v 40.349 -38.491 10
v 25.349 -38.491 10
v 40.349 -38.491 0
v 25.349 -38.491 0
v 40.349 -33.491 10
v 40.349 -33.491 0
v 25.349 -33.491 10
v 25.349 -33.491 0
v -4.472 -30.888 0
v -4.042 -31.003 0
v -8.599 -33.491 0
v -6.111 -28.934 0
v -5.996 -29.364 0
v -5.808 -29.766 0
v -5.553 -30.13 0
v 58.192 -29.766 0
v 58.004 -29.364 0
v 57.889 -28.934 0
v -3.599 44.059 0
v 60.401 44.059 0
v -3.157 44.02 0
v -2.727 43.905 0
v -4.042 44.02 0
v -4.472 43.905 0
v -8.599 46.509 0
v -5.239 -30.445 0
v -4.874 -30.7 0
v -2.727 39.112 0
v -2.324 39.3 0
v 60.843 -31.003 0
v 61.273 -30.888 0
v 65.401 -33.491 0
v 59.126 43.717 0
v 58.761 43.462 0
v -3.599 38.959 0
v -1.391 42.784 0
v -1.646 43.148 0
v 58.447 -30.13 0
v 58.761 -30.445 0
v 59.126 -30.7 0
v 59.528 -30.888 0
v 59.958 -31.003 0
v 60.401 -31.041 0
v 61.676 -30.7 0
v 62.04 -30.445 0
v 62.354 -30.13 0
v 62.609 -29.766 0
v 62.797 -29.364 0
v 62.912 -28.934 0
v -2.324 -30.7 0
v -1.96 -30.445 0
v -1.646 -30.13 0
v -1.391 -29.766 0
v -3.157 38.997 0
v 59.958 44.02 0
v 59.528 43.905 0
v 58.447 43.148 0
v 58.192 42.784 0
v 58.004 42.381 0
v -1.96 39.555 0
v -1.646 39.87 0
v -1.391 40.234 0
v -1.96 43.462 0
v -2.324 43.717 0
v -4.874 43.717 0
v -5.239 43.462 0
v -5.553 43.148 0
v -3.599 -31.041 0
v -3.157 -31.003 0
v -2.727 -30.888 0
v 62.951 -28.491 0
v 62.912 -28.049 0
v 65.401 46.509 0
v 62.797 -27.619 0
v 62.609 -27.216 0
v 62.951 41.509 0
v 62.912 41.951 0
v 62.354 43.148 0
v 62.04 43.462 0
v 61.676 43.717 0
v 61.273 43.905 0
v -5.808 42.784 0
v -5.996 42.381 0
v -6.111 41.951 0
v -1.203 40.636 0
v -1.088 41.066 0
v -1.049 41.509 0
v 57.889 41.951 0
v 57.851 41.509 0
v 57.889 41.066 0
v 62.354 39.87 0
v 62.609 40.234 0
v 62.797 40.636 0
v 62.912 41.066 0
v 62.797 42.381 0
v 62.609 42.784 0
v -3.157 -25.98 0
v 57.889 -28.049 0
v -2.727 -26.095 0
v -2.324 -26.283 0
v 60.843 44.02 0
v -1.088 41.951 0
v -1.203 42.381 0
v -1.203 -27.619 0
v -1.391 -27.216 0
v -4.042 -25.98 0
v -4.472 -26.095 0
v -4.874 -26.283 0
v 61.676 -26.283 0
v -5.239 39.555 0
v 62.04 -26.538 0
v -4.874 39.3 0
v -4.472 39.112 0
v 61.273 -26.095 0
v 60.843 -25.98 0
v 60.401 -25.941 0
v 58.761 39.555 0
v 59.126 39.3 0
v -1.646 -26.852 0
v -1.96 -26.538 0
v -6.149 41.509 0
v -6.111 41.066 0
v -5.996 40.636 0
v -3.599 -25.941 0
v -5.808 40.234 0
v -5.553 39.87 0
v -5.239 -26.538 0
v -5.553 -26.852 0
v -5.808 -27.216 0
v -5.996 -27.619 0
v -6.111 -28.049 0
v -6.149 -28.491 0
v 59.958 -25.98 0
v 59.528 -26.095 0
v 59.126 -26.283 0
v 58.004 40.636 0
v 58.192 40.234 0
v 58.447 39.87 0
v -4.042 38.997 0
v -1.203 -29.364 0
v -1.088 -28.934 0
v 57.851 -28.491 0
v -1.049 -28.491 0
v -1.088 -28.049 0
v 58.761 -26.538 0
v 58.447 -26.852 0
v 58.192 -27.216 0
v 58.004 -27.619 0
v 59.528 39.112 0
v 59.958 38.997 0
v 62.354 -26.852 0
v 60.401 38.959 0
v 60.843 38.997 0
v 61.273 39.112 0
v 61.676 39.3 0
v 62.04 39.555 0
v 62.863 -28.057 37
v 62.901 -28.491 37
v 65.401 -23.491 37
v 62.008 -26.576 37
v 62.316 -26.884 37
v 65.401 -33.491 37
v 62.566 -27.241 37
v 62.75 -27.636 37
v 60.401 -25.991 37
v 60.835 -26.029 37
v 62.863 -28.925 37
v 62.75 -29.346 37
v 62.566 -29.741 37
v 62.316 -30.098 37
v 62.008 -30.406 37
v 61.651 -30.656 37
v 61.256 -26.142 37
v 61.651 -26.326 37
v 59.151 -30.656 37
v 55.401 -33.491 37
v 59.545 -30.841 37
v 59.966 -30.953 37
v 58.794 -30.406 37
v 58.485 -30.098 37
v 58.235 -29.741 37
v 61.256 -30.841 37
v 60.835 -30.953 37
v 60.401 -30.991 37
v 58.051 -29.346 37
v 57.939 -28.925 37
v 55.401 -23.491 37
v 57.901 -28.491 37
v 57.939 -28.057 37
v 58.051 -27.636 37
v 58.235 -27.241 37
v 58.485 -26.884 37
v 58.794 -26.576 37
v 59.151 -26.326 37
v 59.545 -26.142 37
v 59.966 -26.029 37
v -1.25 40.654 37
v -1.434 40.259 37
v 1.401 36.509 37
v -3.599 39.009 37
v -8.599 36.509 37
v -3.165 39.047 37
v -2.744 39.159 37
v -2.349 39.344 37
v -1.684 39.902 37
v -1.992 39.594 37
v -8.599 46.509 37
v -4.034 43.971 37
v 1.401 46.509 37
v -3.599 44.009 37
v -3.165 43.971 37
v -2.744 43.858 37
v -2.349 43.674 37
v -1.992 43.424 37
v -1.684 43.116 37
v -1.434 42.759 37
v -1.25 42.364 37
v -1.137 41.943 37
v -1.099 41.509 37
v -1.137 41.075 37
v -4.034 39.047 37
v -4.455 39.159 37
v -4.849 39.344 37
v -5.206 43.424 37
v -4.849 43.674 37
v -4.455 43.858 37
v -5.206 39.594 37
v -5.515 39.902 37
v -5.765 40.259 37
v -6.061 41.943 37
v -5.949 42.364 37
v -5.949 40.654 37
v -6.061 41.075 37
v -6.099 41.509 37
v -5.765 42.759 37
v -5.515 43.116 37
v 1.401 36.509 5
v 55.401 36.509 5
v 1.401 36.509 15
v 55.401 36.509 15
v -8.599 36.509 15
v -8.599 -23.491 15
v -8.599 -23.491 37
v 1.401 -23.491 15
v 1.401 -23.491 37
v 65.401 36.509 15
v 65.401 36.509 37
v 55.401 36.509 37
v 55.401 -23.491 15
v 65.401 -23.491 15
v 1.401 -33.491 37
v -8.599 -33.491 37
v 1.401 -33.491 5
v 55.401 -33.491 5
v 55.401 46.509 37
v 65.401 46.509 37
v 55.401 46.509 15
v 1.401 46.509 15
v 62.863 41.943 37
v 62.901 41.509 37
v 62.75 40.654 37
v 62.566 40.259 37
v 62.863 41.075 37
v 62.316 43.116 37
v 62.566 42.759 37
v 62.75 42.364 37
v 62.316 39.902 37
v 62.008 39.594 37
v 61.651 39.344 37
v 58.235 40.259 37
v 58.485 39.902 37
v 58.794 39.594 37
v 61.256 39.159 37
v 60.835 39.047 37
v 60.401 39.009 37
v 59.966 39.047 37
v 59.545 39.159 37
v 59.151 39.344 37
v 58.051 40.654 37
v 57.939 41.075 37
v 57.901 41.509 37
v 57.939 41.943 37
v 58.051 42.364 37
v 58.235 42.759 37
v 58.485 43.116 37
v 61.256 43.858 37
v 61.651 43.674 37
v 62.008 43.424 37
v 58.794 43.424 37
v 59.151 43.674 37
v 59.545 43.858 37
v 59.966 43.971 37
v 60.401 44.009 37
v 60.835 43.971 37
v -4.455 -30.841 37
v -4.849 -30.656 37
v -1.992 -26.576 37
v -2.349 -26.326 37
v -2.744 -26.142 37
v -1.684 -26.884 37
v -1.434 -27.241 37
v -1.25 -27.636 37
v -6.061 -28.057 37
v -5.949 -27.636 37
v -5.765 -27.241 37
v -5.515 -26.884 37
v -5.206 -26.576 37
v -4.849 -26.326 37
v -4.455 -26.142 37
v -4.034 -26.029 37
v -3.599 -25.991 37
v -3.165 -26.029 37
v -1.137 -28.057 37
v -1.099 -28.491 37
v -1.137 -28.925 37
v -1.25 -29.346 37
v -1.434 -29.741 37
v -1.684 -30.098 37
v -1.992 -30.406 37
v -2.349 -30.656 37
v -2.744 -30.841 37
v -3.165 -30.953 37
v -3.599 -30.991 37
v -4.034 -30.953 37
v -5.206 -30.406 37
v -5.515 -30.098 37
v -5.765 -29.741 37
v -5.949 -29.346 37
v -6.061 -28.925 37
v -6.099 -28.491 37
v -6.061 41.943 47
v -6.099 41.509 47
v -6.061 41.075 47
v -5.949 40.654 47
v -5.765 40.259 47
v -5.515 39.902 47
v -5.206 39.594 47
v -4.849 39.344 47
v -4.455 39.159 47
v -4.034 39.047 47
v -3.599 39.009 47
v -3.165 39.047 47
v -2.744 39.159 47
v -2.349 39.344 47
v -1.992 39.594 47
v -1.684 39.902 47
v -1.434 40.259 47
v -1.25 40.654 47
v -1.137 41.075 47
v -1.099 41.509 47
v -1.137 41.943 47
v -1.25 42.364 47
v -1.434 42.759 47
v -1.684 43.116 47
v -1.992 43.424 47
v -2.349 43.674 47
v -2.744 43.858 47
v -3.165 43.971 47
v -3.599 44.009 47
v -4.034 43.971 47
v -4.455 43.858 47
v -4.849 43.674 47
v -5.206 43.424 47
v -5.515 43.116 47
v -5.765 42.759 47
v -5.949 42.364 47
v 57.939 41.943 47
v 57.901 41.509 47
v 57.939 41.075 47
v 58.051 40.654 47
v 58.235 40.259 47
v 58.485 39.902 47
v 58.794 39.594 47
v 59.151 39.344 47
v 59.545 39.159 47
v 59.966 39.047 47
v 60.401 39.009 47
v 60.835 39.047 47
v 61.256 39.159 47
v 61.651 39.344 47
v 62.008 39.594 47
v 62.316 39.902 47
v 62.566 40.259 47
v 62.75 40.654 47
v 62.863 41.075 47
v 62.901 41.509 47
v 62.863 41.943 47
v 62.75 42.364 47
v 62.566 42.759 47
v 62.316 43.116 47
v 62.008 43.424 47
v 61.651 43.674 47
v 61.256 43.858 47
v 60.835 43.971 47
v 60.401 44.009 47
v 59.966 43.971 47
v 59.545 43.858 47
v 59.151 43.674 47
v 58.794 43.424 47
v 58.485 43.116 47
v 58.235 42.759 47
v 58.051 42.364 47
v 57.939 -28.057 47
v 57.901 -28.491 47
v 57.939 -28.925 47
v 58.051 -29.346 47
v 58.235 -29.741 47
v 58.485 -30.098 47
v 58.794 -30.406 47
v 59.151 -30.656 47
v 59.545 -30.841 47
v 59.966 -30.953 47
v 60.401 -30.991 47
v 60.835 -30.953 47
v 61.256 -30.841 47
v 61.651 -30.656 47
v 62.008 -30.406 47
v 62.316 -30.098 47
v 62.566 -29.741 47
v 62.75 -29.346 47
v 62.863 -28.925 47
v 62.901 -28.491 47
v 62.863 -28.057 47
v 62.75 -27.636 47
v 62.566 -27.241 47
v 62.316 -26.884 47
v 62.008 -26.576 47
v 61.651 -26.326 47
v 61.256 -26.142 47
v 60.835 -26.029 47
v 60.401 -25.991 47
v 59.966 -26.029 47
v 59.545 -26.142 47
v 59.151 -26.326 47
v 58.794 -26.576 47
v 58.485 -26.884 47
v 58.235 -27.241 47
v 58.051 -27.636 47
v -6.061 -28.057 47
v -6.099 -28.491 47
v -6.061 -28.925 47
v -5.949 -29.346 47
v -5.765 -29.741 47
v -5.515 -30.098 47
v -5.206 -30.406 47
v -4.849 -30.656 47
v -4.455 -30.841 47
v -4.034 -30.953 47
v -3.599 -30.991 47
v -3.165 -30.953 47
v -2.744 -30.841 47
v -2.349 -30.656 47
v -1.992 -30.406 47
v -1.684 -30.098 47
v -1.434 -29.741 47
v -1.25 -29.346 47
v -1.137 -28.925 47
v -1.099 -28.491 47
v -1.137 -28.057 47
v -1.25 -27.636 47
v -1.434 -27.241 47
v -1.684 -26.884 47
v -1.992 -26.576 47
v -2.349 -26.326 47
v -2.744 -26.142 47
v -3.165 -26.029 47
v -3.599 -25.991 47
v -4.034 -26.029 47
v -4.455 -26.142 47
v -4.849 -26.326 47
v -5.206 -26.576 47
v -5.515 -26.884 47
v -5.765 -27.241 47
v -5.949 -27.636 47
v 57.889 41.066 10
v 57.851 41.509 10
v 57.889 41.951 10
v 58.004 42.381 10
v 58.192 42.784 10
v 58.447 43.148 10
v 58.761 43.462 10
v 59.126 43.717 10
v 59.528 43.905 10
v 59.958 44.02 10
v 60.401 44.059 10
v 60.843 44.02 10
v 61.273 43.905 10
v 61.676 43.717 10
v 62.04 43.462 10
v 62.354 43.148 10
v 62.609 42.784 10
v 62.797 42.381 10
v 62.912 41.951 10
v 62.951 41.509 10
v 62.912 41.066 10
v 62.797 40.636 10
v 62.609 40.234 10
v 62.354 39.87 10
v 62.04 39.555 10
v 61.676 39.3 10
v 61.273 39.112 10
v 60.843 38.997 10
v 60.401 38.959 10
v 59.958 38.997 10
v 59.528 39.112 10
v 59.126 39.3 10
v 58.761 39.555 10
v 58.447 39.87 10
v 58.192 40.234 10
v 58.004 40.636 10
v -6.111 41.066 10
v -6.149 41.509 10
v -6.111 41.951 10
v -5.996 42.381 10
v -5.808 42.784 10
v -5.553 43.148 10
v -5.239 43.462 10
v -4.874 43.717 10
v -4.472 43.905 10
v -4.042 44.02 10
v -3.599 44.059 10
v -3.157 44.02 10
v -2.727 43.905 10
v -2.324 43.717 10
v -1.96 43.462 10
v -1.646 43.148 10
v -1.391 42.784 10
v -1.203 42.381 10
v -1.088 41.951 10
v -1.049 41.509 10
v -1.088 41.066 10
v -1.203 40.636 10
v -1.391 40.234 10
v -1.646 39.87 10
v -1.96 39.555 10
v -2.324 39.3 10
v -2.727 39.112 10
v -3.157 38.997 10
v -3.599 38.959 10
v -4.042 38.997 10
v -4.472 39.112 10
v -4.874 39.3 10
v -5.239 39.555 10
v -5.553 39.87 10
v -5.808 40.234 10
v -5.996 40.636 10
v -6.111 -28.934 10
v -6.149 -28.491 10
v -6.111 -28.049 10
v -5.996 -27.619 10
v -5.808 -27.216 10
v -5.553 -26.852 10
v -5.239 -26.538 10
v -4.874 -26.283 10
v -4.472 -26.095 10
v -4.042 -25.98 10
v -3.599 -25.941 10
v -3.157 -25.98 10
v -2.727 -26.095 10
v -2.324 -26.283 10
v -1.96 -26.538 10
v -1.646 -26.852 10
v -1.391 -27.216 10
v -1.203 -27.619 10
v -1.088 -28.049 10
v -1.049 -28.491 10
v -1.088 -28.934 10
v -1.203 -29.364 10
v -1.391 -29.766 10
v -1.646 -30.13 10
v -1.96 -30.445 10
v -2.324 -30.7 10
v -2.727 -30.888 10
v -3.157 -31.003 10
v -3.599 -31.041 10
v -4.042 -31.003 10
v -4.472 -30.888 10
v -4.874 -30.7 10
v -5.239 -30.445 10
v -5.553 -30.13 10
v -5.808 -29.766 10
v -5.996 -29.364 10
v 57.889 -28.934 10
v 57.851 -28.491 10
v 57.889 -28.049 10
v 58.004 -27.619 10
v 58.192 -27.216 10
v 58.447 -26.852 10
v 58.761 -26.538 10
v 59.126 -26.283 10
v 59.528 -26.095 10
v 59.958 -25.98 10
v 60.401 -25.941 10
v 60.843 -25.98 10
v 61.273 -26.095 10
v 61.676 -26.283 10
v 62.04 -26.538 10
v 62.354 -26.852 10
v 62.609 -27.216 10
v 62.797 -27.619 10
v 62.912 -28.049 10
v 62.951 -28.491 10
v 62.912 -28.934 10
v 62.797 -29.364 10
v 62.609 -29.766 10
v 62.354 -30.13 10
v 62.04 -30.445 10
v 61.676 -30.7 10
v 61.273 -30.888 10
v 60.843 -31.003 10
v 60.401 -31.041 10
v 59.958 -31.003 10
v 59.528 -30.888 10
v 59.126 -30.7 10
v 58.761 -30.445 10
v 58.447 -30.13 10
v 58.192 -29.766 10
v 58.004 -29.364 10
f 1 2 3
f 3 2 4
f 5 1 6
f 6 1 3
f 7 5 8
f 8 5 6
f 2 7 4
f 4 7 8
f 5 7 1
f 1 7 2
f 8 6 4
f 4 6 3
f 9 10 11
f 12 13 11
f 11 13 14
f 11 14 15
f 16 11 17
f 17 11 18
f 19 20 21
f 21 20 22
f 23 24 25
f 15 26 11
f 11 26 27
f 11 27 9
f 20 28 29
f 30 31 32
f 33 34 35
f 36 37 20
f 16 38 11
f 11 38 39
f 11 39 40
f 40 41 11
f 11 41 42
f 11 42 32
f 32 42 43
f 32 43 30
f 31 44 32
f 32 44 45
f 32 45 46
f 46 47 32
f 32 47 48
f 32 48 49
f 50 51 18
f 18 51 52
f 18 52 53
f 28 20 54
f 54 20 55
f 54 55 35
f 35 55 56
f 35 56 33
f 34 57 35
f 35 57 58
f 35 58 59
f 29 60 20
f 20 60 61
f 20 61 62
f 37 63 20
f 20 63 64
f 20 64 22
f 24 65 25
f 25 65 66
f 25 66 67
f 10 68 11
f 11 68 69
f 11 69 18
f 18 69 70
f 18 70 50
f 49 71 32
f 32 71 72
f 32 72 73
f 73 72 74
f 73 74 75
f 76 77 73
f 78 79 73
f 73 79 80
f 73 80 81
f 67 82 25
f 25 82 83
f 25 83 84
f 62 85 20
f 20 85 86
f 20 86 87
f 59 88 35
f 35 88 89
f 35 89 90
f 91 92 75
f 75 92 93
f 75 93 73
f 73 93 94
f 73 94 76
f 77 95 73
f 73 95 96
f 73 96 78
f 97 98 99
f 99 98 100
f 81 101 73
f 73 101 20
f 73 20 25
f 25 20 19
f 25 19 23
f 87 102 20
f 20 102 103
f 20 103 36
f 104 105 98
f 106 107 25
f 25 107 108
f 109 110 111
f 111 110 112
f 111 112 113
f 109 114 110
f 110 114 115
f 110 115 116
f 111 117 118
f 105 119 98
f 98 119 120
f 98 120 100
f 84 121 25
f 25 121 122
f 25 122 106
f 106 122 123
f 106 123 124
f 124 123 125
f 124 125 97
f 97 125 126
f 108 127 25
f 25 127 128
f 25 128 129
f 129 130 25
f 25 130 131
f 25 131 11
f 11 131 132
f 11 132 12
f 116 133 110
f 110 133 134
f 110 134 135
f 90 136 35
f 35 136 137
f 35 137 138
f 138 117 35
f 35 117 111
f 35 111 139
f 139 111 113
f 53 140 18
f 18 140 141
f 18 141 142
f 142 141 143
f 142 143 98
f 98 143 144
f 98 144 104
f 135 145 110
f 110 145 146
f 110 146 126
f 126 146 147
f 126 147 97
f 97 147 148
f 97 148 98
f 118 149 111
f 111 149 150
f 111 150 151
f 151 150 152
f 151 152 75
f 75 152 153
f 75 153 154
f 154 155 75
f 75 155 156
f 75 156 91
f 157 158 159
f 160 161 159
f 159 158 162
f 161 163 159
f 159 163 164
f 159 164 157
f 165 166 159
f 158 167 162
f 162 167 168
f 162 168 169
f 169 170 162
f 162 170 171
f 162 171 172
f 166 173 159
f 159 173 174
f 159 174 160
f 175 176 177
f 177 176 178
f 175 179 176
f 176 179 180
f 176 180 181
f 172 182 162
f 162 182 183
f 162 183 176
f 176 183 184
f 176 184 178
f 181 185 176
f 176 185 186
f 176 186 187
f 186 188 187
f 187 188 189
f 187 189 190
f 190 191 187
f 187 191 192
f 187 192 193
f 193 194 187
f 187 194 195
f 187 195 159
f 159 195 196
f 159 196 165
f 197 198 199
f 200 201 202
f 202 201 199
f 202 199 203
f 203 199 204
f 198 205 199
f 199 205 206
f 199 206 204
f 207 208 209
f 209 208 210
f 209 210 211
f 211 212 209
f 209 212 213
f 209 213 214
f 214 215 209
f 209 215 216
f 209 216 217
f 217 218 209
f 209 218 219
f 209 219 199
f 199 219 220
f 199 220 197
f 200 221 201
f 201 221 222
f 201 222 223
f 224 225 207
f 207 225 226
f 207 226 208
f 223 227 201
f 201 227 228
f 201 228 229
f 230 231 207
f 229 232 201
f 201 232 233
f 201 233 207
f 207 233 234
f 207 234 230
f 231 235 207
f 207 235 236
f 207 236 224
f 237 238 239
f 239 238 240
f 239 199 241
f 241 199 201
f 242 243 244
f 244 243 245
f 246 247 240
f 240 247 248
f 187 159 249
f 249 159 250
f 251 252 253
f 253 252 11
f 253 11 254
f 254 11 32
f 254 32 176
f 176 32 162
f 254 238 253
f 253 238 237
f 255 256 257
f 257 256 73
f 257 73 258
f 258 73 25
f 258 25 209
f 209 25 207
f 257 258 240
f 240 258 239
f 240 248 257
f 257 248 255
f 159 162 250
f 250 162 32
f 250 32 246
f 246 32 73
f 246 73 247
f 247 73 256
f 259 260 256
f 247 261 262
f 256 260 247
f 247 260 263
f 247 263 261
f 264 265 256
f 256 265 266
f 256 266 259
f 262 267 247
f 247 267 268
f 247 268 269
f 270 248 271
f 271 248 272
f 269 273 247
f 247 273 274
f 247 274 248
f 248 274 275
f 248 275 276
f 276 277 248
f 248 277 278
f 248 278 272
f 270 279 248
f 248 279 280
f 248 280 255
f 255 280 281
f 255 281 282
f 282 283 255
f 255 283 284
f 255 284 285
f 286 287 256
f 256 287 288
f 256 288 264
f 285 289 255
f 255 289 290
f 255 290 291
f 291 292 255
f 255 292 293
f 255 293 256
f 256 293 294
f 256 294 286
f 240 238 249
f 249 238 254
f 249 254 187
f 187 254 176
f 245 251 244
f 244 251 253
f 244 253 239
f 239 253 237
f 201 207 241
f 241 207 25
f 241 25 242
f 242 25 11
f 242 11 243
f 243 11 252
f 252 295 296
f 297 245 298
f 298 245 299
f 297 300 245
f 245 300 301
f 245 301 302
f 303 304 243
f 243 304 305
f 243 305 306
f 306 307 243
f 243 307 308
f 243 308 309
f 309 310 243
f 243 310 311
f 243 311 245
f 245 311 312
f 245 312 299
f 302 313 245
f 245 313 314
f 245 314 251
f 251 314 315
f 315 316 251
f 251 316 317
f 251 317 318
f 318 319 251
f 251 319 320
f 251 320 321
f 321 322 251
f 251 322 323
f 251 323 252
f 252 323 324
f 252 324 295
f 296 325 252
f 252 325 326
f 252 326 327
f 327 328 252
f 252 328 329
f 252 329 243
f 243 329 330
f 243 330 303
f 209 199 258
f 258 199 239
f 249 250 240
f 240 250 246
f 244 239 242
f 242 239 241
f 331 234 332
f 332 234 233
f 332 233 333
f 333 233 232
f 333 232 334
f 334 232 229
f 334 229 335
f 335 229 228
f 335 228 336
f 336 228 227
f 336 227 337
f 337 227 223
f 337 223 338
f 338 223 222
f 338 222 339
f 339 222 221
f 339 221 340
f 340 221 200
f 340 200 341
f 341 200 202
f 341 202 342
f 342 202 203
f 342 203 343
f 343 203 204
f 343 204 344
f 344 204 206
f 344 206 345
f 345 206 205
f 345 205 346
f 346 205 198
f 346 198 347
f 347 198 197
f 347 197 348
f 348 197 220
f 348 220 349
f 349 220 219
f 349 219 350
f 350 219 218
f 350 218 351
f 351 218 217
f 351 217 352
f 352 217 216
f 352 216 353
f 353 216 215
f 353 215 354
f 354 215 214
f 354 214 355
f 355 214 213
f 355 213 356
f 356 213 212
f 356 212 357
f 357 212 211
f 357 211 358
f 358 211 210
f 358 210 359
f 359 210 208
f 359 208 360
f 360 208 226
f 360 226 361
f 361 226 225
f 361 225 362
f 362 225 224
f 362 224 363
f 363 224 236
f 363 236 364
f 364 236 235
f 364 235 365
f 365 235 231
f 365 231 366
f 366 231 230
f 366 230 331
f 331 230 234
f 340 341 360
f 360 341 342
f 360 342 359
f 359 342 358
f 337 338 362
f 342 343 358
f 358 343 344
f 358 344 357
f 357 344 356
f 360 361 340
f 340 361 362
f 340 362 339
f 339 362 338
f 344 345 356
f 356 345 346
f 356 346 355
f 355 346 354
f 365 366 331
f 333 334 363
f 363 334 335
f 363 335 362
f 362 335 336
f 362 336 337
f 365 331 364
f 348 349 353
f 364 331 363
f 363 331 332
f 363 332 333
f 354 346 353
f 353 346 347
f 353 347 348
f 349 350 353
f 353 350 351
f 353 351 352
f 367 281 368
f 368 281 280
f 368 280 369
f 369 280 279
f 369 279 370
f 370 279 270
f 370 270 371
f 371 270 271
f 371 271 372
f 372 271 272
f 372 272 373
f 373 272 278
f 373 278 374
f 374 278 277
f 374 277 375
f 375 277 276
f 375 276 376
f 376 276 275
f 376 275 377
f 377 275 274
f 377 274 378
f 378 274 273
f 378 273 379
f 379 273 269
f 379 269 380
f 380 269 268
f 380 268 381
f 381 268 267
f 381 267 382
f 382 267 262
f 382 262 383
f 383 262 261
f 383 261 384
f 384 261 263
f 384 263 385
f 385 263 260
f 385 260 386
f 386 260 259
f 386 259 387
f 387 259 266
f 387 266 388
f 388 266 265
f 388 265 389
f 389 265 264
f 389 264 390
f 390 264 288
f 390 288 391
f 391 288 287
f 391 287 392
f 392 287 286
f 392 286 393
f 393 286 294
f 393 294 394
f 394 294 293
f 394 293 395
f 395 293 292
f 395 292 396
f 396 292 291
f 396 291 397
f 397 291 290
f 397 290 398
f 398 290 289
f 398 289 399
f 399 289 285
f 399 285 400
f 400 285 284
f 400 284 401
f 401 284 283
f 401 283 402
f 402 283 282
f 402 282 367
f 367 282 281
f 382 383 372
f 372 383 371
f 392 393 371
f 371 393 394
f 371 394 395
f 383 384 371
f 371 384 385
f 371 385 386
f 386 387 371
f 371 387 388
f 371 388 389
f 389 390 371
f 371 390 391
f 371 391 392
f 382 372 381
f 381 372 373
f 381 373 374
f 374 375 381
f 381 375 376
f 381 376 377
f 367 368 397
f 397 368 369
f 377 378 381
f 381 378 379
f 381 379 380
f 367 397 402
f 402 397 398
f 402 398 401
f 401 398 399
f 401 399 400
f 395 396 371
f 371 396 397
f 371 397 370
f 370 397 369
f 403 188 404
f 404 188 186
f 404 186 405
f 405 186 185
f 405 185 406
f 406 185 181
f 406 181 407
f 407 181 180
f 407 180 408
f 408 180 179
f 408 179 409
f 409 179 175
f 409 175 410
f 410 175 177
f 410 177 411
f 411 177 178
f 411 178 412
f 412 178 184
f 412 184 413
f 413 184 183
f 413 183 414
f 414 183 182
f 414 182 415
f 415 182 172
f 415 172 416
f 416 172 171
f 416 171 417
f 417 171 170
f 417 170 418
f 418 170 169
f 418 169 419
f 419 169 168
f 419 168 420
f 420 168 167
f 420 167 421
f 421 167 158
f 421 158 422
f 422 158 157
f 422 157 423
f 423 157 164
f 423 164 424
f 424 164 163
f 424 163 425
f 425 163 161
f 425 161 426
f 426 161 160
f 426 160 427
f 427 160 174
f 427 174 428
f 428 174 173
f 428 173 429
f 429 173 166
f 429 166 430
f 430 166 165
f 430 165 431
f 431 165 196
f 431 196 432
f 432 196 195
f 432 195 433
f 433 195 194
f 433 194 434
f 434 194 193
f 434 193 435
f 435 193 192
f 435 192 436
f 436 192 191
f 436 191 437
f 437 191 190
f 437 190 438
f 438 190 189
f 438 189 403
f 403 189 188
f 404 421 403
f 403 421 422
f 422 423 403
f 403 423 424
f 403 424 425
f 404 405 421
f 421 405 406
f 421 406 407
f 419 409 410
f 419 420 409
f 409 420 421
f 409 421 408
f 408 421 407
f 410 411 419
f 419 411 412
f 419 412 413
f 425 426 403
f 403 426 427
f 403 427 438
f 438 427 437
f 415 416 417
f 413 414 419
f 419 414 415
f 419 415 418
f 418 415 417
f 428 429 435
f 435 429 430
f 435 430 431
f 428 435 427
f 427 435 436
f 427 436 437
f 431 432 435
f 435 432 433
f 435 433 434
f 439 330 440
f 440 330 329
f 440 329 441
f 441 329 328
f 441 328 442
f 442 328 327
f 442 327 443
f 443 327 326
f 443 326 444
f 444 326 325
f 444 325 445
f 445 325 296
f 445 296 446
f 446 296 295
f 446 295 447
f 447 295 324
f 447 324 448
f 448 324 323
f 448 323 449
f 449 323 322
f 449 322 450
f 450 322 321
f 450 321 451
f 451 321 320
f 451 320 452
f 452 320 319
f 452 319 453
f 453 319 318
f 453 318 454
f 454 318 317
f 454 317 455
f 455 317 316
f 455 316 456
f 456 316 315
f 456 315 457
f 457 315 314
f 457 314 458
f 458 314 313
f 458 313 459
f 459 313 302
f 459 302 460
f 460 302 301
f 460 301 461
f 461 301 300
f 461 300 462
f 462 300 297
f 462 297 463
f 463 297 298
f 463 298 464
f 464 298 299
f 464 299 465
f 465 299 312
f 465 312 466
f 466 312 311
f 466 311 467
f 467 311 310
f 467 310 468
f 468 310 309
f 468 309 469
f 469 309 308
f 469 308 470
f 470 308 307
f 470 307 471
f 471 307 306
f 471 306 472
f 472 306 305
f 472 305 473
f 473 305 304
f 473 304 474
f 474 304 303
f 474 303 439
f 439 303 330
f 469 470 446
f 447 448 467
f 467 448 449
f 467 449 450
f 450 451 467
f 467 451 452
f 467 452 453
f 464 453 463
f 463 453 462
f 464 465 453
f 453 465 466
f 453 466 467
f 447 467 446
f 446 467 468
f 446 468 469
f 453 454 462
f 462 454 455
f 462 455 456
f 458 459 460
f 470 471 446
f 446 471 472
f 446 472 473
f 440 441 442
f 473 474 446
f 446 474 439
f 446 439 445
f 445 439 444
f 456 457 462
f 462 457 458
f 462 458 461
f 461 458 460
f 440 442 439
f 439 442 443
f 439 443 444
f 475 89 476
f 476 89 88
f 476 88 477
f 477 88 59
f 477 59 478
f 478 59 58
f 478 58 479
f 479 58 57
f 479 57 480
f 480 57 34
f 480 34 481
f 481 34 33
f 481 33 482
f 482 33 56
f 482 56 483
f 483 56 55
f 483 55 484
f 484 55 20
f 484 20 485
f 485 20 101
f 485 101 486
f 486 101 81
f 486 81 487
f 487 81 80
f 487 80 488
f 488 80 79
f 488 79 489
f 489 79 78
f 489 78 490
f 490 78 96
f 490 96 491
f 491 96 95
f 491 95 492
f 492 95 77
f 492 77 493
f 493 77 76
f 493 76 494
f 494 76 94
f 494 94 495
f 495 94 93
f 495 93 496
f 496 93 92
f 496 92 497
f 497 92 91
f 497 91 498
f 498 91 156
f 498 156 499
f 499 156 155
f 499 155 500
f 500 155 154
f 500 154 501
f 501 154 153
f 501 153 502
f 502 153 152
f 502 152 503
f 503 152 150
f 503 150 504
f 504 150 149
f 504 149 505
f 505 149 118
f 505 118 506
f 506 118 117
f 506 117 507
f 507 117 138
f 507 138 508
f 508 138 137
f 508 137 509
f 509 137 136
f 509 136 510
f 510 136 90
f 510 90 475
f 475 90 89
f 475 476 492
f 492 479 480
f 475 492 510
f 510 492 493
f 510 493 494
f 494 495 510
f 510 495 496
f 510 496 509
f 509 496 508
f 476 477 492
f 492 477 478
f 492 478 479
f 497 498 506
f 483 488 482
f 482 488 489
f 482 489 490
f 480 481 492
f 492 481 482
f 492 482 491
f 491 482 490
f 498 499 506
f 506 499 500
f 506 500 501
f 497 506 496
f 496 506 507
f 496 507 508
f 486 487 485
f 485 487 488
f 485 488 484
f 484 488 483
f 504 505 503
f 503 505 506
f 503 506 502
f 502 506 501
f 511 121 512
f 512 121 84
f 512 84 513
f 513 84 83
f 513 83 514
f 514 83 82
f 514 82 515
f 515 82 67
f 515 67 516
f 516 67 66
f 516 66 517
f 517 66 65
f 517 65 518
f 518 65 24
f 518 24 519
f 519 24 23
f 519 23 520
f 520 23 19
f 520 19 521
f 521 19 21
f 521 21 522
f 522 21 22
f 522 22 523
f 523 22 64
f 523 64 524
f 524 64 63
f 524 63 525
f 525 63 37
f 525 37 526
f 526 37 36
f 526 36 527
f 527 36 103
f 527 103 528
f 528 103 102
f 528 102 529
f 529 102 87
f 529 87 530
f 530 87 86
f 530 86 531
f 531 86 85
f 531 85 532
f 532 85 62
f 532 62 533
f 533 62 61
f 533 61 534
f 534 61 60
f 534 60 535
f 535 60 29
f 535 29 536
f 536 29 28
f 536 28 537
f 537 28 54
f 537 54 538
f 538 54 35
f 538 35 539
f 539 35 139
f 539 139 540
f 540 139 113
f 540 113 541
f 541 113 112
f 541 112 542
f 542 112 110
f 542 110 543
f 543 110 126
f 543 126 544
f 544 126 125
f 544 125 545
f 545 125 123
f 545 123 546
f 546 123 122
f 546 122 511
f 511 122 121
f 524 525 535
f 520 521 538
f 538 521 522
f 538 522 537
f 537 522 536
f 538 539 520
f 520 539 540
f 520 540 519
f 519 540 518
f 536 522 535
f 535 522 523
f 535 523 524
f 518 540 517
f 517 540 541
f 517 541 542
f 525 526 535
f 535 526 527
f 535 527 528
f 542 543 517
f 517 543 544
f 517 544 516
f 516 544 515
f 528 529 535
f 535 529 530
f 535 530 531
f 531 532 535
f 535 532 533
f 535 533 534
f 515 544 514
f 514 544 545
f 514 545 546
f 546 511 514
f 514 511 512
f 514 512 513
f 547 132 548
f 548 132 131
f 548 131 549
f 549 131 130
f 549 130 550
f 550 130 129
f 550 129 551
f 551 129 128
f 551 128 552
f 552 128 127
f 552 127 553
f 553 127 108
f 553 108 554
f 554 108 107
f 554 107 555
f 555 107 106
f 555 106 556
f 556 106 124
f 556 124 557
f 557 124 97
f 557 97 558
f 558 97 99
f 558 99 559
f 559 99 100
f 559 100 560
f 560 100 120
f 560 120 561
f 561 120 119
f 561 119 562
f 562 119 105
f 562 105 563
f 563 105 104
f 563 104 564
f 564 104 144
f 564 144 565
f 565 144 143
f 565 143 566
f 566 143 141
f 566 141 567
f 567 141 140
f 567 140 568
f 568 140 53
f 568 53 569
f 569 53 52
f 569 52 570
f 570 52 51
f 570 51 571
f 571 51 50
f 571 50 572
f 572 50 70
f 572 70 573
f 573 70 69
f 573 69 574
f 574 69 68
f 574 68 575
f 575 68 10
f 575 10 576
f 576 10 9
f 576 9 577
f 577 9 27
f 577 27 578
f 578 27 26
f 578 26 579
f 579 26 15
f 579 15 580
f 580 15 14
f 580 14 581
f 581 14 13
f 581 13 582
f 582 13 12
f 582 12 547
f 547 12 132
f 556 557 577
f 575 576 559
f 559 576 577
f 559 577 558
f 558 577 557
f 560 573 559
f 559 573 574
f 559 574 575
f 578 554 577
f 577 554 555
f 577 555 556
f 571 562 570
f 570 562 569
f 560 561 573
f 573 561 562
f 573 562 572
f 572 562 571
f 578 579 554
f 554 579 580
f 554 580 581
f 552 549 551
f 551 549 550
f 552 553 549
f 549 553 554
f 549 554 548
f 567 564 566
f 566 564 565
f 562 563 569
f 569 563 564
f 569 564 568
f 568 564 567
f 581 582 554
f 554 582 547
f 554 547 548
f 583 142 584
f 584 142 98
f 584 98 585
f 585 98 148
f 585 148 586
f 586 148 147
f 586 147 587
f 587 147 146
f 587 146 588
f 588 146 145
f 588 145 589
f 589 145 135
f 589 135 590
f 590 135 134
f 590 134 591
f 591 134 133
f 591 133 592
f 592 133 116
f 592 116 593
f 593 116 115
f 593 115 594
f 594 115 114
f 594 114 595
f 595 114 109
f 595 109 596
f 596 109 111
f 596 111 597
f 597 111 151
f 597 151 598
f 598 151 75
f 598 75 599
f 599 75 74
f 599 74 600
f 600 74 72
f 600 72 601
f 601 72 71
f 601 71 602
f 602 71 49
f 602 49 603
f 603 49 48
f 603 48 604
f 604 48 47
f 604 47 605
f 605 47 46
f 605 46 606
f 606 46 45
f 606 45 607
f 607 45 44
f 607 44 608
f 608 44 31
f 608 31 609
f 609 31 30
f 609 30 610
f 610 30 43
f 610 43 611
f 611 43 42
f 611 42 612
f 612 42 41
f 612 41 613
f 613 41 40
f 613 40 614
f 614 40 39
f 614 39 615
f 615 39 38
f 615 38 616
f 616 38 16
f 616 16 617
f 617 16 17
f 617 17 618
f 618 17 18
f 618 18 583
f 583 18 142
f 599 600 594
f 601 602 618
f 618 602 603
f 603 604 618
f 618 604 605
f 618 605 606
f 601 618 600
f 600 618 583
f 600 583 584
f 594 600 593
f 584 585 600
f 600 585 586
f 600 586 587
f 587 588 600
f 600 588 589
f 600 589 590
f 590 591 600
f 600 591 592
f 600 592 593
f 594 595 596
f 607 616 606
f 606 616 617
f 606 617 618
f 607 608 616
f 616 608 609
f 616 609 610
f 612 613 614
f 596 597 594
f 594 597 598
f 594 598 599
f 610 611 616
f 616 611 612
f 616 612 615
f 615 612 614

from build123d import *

# Parameters (mm, degrees)
CROQUIS1_W               = 54
CROQUIS1_H               = 70
SALIENTE_EXTRUIR1_DEPTH  = 5
CROQUIS4_W               = 54
CROQUIS4_H               = 10
SALIENTE_EXTRUIR5_DEPTH  = 15
CROQUIS5_W               = 10
CROQUIS5_H               = 10
SALIENTE_EXTRUIR6_DEPTH  = 37
CROQUIS6_W               = 15
CROQUIS6_H               = 5
SALIENTE_EXTRUIR7_DEPTH  = 10
CROQUIS8_W               = 10
CROQUIS8_H               = 60
SALIENTE_EXTRUIR9_DEPTH  = 15
CROQUIS9_R               = 2.5
SALIENTE_EXTRUIR10_DEPTH = 10
CROQUIS11_R              = 2.55
CORTAR_EXTRUIR1_DEPTH    = 10


with BuildPart() as part:
    # Croquis1 → Saliente-Extruir1 (new body)
    with BuildSketch(Plane.XY):
        with Locations((28.400543811, 1.50863747)):
            Rectangle(CROQUIS1_W, CROQUIS1_H)
    extrude(amount=SALIENTE_EXTRUIR1_DEPTH)

    # Croquis4 → Saliente-Extruir5 (add)
    with BuildSketch(Plane(origin=(0, 0, 0), x_dir=(-1, 0, 0), z_dir=(0, 0, -1))):
        with Locations((-28.400543811, 41.50863747)):
            Rectangle(CROQUIS4_W, CROQUIS4_H)
    extrude(amount=-SALIENTE_EXTRUIR5_DEPTH)

    # Croquis5 → Saliente-Extruir6 (add)
    with BuildSketch(Plane(origin=(0, 0, 0), x_dir=(-1, 0, 0), z_dir=(0, 0, -1))):
        with Locations((-60.400543811, 41.50863747)):
            Rectangle(CROQUIS5_W, CROQUIS5_H)
        with Locations((-60.400543811, -28.49136253)):
            Rectangle(CROQUIS5_W, CROQUIS5_H)
        with Locations((3.599456189, -28.49136253)):
            Rectangle(CROQUIS5_W, CROQUIS5_H)
        with Locations((3.599456189, 41.50863747)):
            Rectangle(CROQUIS5_W, CROQUIS5_H)
    extrude(amount=-SALIENTE_EXTRUIR6_DEPTH)

    # Croquis8 → Saliente-Extruir9 (add)
    with BuildSketch(Plane(origin=(0, 0, 0), x_dir=(-1, 0, 0), z_dir=(0, 0, -1))):
        with Locations((-60.400543811, 6.50863747)):
            Rectangle(CROQUIS8_W, CROQUIS8_H)
        with Locations((3.599456189, 6.50863747)):
            Rectangle(CROQUIS8_W, CROQUIS8_H)
    extrude(amount=-SALIENTE_EXTRUIR9_DEPTH)

    # Croquis9 → Saliente-Extruir10 (add)
    with BuildSketch(Plane.XY.offset(37)):
        with BuildLine():
            ThreePointArc((-1.099456189, 41.50863747), (-3.599456189, 44.00863747), (-6.099456189, 41.50863747))
            Line((-6.099456189, 41.50863747), (-1.099456189, 41.50863747))
        make_face()
        with BuildLine():
            Line((-1.099456189, 41.50863747), (-6.099456189, 41.50863747))
            ThreePointArc((-6.099456189, 41.50863747), (-3.599456189, 39.00863747), (-1.099456189, 41.50863747))
        make_face()
        with Locations((60.400543811, 41.50863747)):
            Circle(CROQUIS9_R)
        with Locations((60.400543811, -28.49136253)):
            Circle(CROQUIS9_R)
        with Locations((-3.599456189, -28.49136253)):
            Circle(CROQUIS9_R)
    extrude(amount=SALIENTE_EXTRUIR10_DEPTH)

    # Croquis11 → Cortar-Extruir1 (cut)
    with BuildSketch(Plane(origin=(0, 0, 0), x_dir=(-1, 0, 0), z_dir=(0, 0, -1))):
        with BuildLine():
            ThreePointArc((-57.850543811, 41.50863747), (-60.400543811, 44.05863747), (-62.950543811, 41.50863747))
            Line((-62.950543811, 41.50863747), (-60.400543811, 41.50863747))
            Line((-60.400543811, 41.50863747), (-57.850543811, 41.50863747))
        make_face()
        with BuildLine():
            Line((-60.400543811, 41.50863747), (-62.950543811, 41.50863747))
            ThreePointArc((-62.950543811, 41.50863747), (-60.400543811, 38.95863747), (-57.850543811, 41.50863747))
            Line((-57.850543811, 41.50863747), (-60.400543811, 41.50863747))
        make_face()
        with BuildLine():
            ThreePointArc((6.149456189, 41.50863747), (3.599456189, 44.05863747), (1.049456189, 41.50863747))
            Line((1.049456189, 41.50863747), (6.149456189, 41.50863747))
        make_face()
        with BuildLine():
            Line((6.149456189, 41.50863747), (1.049456189, 41.50863747))
            ThreePointArc((1.049456189, 41.50863747), (3.599456189, 38.95863747), (6.149456189, 41.50863747))
        make_face()
        with Locations((3.599456189, -28.49136253)):
            Circle(CROQUIS11_R)
        with Locations((-60.400543811, -28.49136253)):
            Circle(CROQUIS11_R)
    extrude(amount=-CORTAR_EXTRUIR1_DEPTH, mode=Mode.SUBTRACT)


with BuildPart() as body_2:
    # Croquis6 → Saliente-Extruir7 (new body)
    with BuildSketch(Plane(origin=(0, 0, 0), x_dir=(-1, 0, 0), z_dir=(0, 0, -1))):
        with Locations((-32.848967284, -35.99136253)):
            Rectangle(CROQUIS6_W, CROQUIS6_H)
    extrude(amount=-SALIENTE_EXTRUIR7_DEPTH)


solid = Compound([part.part, body_2.part])
